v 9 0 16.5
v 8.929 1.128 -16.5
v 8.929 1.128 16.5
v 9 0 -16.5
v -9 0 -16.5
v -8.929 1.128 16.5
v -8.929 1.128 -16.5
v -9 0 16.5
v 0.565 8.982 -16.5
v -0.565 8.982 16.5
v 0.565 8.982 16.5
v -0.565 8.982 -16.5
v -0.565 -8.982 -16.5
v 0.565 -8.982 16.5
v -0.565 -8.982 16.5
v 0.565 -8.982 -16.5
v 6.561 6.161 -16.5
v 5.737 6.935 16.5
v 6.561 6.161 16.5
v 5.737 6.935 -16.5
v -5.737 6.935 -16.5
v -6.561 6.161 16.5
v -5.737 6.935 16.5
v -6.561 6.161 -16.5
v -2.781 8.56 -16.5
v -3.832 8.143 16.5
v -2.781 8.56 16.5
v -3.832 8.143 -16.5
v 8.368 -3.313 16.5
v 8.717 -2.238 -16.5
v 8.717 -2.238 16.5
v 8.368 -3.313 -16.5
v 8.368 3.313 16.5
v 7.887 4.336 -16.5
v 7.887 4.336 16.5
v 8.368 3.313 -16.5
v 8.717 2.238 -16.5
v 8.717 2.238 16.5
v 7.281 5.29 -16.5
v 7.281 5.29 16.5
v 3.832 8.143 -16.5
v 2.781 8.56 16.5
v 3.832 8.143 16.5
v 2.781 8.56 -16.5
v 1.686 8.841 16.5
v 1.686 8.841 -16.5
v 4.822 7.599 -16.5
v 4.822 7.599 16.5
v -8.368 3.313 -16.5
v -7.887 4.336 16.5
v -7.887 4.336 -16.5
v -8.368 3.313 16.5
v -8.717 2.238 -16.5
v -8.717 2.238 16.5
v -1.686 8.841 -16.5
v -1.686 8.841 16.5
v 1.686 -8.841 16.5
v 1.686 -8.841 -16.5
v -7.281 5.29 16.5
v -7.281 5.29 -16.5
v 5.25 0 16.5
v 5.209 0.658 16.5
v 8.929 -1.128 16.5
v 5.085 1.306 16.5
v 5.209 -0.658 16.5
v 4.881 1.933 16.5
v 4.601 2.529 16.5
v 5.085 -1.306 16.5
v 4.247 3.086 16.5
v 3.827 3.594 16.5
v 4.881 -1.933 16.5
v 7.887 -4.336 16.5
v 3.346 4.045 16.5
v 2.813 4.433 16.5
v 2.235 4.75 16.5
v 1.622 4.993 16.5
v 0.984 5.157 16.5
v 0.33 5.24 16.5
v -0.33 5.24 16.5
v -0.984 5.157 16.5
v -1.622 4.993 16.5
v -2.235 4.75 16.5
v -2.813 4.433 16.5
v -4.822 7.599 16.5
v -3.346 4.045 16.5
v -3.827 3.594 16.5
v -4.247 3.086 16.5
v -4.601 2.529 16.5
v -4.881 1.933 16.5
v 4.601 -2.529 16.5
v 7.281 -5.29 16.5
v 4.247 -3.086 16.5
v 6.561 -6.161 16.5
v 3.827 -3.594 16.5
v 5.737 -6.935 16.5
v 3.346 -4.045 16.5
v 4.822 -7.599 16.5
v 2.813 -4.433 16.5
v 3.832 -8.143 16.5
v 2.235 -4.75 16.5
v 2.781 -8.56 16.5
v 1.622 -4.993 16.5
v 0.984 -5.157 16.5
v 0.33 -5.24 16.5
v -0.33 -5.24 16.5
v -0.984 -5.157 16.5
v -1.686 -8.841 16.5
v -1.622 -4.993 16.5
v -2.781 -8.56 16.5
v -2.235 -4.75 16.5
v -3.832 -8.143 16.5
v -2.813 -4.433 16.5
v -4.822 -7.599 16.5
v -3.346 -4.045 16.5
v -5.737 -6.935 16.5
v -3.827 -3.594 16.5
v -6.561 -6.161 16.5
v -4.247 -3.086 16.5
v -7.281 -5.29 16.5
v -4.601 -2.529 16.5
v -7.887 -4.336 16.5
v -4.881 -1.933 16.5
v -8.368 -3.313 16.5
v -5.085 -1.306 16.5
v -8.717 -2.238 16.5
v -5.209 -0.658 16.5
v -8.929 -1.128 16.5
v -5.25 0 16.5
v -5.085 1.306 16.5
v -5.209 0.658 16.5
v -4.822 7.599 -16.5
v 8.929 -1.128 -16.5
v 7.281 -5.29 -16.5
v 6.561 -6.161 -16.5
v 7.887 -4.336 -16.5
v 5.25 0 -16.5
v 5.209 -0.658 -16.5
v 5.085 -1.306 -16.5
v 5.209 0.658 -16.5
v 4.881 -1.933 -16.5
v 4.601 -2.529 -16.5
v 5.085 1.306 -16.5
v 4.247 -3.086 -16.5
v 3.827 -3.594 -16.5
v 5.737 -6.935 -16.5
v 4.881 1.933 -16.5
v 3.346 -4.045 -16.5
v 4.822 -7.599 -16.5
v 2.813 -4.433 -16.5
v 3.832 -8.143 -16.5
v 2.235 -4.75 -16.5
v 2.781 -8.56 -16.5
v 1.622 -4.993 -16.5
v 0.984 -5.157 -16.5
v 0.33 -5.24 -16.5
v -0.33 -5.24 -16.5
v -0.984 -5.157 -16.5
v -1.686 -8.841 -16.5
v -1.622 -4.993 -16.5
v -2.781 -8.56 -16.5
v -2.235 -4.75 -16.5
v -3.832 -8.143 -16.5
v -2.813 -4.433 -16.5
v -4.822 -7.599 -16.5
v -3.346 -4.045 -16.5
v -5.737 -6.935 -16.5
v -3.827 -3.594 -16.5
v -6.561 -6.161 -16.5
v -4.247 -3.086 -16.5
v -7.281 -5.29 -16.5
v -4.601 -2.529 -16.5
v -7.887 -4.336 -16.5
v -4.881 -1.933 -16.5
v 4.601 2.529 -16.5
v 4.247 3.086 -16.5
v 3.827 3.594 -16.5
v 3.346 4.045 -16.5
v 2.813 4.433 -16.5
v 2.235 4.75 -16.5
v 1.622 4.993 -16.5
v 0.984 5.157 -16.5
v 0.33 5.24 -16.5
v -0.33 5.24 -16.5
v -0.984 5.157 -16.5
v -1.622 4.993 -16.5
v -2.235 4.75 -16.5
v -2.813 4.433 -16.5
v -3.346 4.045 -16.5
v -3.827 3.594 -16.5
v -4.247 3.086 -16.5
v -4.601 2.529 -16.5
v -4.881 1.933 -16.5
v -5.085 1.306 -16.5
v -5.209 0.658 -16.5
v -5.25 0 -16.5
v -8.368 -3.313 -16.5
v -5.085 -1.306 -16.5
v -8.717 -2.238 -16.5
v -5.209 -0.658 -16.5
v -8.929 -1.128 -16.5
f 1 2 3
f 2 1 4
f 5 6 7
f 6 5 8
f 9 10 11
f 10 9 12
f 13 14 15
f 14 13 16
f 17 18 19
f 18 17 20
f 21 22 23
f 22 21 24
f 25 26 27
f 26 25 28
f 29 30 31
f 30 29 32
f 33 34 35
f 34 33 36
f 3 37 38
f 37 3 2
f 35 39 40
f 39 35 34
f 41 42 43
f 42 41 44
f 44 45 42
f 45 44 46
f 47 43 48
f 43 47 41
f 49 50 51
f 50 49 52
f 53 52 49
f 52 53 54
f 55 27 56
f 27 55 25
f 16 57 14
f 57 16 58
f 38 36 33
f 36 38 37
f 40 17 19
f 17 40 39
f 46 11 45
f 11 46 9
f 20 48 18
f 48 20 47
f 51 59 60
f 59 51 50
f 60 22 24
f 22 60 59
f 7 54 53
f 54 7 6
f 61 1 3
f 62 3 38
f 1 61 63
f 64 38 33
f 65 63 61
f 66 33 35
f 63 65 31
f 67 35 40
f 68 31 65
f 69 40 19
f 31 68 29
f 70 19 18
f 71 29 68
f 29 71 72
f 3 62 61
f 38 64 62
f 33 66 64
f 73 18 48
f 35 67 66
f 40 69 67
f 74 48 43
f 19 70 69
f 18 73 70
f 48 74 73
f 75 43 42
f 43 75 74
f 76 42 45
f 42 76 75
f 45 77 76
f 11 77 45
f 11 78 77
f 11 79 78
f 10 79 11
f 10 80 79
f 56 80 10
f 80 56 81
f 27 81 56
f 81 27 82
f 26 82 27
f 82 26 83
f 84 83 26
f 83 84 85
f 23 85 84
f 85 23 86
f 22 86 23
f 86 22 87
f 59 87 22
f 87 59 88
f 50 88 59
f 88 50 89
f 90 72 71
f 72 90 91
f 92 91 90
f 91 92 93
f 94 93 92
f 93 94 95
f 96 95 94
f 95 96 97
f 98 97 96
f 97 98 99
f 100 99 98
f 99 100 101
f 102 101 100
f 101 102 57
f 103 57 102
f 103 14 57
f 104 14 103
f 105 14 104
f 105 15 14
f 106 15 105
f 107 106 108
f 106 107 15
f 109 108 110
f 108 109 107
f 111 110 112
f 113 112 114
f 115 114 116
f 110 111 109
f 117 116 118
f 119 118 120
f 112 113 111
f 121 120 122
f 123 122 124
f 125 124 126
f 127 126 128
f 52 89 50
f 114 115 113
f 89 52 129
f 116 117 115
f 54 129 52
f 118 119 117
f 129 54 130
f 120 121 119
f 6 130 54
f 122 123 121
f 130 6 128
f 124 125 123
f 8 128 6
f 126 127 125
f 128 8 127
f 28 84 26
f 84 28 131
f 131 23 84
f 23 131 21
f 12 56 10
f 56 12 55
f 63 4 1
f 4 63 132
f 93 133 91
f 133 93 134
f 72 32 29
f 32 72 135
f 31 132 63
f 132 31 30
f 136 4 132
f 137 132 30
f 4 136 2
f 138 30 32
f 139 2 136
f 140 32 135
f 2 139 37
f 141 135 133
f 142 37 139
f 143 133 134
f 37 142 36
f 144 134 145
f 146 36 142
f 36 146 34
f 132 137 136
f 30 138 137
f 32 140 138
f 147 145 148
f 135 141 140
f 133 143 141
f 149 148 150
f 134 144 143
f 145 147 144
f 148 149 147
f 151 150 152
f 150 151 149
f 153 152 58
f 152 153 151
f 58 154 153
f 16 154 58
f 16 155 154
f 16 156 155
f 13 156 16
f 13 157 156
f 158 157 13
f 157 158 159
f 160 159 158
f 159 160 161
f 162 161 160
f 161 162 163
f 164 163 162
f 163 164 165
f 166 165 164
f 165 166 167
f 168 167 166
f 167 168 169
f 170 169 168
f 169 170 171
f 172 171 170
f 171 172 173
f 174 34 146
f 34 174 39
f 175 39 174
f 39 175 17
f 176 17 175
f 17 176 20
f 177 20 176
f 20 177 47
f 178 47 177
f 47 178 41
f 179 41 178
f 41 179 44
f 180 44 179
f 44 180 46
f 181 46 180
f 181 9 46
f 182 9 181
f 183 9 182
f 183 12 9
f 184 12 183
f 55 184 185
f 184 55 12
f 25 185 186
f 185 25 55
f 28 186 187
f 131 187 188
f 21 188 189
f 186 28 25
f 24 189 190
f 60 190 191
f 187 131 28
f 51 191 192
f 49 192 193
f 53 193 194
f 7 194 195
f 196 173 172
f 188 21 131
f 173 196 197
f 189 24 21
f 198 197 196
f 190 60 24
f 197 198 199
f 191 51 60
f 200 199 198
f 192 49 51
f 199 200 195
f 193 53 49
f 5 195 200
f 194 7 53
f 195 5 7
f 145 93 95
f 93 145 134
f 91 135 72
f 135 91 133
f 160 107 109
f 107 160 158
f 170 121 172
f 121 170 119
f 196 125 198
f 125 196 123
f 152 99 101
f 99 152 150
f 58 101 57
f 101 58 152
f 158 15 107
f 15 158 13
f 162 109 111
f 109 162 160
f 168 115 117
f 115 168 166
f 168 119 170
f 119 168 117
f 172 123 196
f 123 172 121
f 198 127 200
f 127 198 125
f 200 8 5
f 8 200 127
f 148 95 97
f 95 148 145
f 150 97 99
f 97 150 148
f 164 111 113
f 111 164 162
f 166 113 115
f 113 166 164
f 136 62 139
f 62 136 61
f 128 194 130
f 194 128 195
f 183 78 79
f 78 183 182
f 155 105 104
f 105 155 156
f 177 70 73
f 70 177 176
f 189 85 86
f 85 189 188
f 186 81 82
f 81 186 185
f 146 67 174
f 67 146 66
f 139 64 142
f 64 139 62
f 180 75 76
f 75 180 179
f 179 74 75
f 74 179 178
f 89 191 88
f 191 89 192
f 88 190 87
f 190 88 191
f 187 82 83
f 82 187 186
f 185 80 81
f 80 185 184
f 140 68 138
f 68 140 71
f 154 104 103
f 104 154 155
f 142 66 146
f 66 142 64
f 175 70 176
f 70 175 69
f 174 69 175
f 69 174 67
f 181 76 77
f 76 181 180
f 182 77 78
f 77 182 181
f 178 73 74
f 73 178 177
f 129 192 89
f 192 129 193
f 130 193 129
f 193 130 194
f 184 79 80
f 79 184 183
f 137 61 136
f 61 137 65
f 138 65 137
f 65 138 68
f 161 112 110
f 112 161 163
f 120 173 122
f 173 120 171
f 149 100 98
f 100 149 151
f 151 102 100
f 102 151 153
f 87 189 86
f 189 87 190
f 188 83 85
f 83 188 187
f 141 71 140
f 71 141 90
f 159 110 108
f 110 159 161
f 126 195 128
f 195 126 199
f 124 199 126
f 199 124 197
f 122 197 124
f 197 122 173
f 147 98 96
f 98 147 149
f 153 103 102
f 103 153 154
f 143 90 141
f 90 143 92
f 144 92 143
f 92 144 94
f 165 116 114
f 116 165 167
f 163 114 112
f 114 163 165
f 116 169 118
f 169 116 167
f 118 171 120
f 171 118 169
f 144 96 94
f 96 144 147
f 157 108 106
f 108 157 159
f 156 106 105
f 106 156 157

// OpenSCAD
$fn = 50;


difference() {
	union() {
		translate(v = [0, 0, -16.5000000000]) {
			cylinder(h = 33, r = 9.0000000000);
		}
	}
	union() {
		translate(v = [0, 0, -100.0000000000]) {
			cylinder(h = 200, r = 5.2500000000);
		}
	}
}
